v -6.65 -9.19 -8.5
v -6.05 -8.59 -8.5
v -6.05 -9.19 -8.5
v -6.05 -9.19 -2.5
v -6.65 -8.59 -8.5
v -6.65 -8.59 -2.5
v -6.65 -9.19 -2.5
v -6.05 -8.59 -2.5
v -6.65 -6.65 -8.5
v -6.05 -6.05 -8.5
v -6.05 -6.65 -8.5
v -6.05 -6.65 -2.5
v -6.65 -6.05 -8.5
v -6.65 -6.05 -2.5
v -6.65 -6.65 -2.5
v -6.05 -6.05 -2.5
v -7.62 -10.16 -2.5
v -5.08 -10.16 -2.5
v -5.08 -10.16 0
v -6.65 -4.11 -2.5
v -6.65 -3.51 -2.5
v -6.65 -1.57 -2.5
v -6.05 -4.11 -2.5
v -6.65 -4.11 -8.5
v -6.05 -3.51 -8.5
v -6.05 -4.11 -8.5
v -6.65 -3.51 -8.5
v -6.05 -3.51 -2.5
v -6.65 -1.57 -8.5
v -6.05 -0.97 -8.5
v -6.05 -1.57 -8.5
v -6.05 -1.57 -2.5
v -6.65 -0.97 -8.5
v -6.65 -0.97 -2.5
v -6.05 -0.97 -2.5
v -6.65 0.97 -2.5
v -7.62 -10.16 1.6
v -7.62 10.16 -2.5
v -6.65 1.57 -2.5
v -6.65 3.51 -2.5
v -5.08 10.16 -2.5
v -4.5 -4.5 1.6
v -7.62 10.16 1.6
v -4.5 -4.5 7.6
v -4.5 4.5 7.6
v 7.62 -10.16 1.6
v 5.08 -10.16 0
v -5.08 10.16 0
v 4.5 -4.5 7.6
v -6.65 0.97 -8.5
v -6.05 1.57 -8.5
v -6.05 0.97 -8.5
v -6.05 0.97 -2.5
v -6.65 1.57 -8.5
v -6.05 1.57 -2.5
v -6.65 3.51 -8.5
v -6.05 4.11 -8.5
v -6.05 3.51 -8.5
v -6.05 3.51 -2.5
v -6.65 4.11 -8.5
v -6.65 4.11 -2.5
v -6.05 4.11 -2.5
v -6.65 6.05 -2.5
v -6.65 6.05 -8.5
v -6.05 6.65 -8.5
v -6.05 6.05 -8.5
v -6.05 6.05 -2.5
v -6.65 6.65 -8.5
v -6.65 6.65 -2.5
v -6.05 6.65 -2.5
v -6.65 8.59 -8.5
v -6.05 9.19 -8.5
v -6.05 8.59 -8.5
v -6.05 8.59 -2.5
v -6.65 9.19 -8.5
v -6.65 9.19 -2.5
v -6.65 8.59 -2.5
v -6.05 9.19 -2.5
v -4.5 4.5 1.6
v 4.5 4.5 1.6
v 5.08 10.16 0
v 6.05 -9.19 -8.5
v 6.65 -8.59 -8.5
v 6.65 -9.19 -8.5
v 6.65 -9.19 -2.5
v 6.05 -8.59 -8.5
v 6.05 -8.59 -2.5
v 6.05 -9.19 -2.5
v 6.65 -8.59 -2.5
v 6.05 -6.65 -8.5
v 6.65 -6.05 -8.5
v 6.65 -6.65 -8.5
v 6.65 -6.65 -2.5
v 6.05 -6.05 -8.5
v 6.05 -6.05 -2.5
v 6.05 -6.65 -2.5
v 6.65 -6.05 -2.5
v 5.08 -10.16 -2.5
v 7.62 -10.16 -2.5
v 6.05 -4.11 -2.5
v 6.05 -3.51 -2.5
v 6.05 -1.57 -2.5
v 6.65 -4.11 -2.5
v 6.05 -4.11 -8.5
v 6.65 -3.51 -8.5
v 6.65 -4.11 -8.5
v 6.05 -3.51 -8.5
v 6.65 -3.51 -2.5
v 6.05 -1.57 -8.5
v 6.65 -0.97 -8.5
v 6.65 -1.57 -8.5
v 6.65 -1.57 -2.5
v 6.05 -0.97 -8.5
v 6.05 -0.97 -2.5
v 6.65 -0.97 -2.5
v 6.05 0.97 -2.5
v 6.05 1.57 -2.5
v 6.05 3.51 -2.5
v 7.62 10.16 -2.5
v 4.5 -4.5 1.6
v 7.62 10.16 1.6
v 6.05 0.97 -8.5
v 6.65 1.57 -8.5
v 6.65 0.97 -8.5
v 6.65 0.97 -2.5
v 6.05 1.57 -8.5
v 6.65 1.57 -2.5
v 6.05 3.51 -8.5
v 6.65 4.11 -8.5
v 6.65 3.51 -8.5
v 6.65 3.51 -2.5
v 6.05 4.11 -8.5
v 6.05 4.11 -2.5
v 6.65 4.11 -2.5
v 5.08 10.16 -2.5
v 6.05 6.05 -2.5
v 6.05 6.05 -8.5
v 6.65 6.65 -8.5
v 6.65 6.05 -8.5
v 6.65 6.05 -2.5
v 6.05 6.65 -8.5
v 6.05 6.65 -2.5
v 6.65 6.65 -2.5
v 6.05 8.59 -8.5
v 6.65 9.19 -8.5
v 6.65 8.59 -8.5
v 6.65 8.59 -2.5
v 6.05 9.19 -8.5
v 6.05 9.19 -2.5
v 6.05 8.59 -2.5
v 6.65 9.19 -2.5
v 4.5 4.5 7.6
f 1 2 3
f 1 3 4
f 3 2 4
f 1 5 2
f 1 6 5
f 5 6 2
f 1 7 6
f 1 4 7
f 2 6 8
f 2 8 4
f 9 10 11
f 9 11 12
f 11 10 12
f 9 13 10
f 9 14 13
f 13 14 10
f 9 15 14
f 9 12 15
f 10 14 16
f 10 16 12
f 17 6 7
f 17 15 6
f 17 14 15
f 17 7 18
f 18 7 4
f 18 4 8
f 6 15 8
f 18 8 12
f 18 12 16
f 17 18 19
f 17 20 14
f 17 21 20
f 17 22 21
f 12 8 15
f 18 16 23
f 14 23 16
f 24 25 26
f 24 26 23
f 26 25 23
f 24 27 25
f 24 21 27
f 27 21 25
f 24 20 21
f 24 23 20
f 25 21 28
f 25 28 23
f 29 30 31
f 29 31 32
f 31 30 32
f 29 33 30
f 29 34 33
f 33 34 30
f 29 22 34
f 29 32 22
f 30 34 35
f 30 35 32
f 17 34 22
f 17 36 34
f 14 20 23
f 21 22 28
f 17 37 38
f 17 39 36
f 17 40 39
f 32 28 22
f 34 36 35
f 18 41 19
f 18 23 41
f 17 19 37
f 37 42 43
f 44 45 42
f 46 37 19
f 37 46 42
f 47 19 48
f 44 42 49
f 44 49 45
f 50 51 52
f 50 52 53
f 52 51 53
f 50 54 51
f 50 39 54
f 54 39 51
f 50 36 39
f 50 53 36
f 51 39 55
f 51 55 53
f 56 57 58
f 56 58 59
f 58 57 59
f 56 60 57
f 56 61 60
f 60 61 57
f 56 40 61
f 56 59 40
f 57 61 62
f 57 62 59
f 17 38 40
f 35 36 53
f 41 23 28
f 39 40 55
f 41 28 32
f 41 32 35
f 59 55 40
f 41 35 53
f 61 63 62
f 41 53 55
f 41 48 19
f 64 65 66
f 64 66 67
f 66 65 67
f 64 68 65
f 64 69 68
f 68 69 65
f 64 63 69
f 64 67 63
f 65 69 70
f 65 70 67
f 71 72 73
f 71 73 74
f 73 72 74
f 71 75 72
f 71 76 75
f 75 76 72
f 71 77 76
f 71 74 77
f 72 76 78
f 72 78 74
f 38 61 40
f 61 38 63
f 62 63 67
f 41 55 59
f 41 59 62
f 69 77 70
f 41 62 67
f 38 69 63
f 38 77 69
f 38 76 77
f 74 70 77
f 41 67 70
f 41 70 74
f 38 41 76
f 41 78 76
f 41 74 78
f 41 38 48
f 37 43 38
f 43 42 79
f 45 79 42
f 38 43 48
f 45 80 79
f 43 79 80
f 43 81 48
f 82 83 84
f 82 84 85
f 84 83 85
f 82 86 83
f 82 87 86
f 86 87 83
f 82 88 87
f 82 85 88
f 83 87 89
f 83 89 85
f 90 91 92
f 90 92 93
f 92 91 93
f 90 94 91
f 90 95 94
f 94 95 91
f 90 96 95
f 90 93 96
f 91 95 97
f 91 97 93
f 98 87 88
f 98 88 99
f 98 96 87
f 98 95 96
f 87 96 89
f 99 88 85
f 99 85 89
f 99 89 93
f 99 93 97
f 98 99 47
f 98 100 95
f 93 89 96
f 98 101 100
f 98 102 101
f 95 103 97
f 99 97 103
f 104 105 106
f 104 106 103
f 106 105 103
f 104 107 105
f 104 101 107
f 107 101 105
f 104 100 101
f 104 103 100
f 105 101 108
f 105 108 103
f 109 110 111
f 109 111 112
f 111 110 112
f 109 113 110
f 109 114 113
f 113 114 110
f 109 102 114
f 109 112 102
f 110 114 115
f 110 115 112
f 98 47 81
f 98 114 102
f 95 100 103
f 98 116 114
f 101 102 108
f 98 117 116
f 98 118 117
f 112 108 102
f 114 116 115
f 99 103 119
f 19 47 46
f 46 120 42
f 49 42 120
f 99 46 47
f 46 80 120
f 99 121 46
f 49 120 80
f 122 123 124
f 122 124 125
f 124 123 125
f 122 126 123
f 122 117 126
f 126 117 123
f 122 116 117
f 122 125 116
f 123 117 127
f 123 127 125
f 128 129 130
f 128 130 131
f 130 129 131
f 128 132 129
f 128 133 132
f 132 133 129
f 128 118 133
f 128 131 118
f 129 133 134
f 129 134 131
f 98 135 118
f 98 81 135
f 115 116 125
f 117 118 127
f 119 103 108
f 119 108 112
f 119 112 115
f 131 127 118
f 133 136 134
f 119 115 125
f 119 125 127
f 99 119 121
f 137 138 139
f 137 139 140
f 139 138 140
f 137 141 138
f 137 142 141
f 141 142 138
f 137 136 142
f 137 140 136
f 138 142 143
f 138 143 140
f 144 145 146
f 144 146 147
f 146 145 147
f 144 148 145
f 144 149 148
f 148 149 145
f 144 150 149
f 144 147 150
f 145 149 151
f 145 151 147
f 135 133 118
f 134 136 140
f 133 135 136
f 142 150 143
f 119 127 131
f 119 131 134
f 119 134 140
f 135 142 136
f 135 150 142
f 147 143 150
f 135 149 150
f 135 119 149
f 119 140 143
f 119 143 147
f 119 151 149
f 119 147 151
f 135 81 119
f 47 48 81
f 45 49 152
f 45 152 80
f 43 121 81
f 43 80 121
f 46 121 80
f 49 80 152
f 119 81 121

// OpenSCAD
// file: ../lib/lib.scad
// Shared helpers. Include AFTER params.scad (needs TOL, M3_* etc.).
$fa = 4; $fs = 0.5;

module rrect(size, r) {            // 2D rounded rectangle, centred
    r2 = min(r, min(size[0], size[1]) / 2 - 0.001);
    offset(r = r2) square([size[0] - 2 * r2, size[1] - 2 * r2], center = true);
}
module rbox(size, r, center_xy = true) {   // box with rounded vertical edges
    translate(center_xy ? [0, 0, 0] : [size[0] / 2, size[1] / 2, 0])
        linear_extrude(size[2]) rrect([size[0], size[1]], r);
}
module rbox_at(x0, x1, y0, y1, z0, z1, r = 0.01) {
    translate([(x0 + x1) / 2, (y0 + y1) / 2, z0]) rbox([x1 - x0, y1 - y0, z1 - z0], r);
}
module box_at(x0, x1, y0, y1, z0, z1) { translate([x0, y0, z0]) cube([x1 - x0, y1 - y0, z1 - z0]); }

module ring(ro, ri, h) { difference() { cylinder(r = ro, h = h); translate([0, 0, -1]) cylinder(r = ri, h = h + 2); } }
module ring_sector(ro, ri, h, a0, a1) {
    intersection() {
        ring(ro, ri, h);
        linear_extrude(h) polygon(concat([[0, 0]], [for (a = [a0 : (a1 - a0) / 24 : a1]) 2 * ro * [cos(a), sin(a)]]));
    }
}
// teardrop hole along an axis lying horizontal (axis = Y after rotation), printable w/o support
module teardrop2d(d) { union() { circle(d = d); rotate(45) square(d / 2); } }
// vertical heat-set insert hole, opening at z=0 going +z (depth l)
module insert_hole(l = M3_INSERT_L) { translate([0, 0, -EPS]) cylinder(d = M3_INSERT_D, h = l + EPS); }
module m3_clear(l) { translate([0, 0, -EPS]) cylinder(d = M3_CLEAR, h = l + 2 * EPS); }
module m3_csk(l) {  // countersunk clearance from z=0 upward, head at z=0 side
    translate([0, 0, -EPS]) { cylinder(d = M3_CLEAR, h = l + 2 * EPS); cylinder(d1 = 6.4, d2 = M3_CLEAR, h = 1.7); }
}
module card2d() { rrect([CARD_L, CARD_W], CARD_R); }
module card_at(cy, z) { translate([0, cy, z]) linear_extrude(CARD_T) card2d(); }

// ---- gears ----
function _inv(a) = tan(a) - a * PI_ / 180;           // involute function, a in deg
function _invpt(rb, r, ang0, s) = let(al = acos(rb / r), th = ang0 - s * (_inv(al) * 180 / PI_)) [r * cos(th), r * sin(th)];
module involute_gear2d(m, z, pa = 20, clearance = 0.05) {
    rp = m * z / 2; rb = rp * cos(pa); ra = rp + m - clearance; rf = rp - 1.25 * m;
    half = 90 / z + _inv(pa) * 180 / PI_;            // tooth half-angle at base (deg)
    n = 8;
    rs = [for (i = [0 : n]) max(rb, rf) + (ra - max(rb, rf)) * i / n];
    union() {
        circle(r = rf, $fn = z * 4);
        for (k = [0 : z - 1]) rotate(k * 360 / z) polygon(concat(
            [[rf * cos(-half), rf * sin(-half)]],
            [for (r = rs) let(p = _invpt(rb, r, half, 1)) [p[0], -p[1]]],
            [for (i = [n : -1 : 0]) _invpt(rb, rs[i], half, 1)],
            [[rf * cos(half), rf * sin(half)]]));
    }
}
// straight gear rack (2D in XY: teeth along +x, pointing -y, pitch line at y=0)
module gear_rack2d(m, len, back = 3) {
    p = PI_ * m; ad = m; de = 1.25 * m; t = tan(20);
    n = ceil(len / p) + 1;
    intersection() {
        union() {
            translate([0, de]) square([len, back]);
            for (i = [0 : n]) translate([i * p - p / 4, 0]) polygon([
                [-(p / 4 + de * t), de + 0.01], [p / 4 + de * t + 0.01, de + 0.01],
                [p / 4 - ad * t, -ad], [-(p / 4 - ad * t), -ad] ]);
        }
        translate([0, -ad - 1]) square([len, ad + de + back + 2]);
    }
}
// GT2 belt-tooth profile ring (teeth outward), 2D
module gt2_ring2d(n, r_land, ri) {
    union() {
        difference() { circle(r = r_land + 0.01, $fn = n * 2); circle(r = ri, $fn = n * 2); }
        for (k = [0 : n - 1]) rotate(k * 360 / n)
            translate([r_land, 0]) hull() { translate([-0.2, 0]) square([0.2, 1.0], center = true); translate([0.25, 0]) circle(r = 0.5, $fn = 12); }
    }
}
// main file
// Vendor model: TMC2209 StepStick driver (with heatsink), headers down. Local: PCB bottom z=0, centred, long side Y.
include <../params.scad>
include <../lib/lib.scad>
module vendor_tmc2209() {
    color([0.1,0.3,0.6]) translate([-7.62, -10.16, 0]) cube([15.24, 20.32, 1.6]);
    color([0.15,0.15,0.17]) translate([-4.5, -4.5, 1.6]) cube([9, 9, 6]);
    color([0.08,0.08,0.08]) for (x = [-1, 1]) translate([x * 6.35 - 1.27, -10.16, -2.5]) cube([2.54, 20.32, 2.5]);
    color([0.85,0.7,0.2]) for (x = [-1, 1], i = [0 : 7]) translate([x * 6.35 - 0.3, -8.89 + i * 2.54 - 0.3, -8.5]) cube([0.6, 0.6, 6]);
}

vendor_tmc2209();
